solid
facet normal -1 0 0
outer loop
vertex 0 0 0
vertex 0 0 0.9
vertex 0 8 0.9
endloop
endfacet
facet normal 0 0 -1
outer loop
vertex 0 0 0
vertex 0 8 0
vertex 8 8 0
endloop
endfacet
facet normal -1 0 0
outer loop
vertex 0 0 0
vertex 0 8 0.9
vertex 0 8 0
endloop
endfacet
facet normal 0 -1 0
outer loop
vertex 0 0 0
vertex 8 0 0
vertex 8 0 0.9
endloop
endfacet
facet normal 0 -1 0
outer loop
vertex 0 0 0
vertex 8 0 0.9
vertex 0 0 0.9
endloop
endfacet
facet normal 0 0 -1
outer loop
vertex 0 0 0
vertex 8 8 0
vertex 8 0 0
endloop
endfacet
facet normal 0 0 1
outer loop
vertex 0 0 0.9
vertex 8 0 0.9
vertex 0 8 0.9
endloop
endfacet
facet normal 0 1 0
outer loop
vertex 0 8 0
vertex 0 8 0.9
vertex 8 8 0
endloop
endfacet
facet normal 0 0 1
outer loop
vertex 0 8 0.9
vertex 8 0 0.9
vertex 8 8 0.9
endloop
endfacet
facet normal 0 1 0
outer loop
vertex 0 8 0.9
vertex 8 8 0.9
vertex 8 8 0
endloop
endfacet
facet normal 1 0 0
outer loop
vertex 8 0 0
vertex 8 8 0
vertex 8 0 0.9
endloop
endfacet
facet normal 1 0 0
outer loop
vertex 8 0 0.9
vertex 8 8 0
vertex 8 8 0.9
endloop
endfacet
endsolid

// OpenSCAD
/* Warning, this is a very basic generator with a lot of approximation 
input data : [VQFN, VXX, 8x8x0.9mm, 68, , A, C04-00353A]
generated by com.zoubworld.electronics.cad.model3d.Basic
Date : Sun Feb 15 10:50:48 CET 2026
*/

//body
color("black")
translate([0,0,0])
cube([8.0,8.0,0.9], center=false);
